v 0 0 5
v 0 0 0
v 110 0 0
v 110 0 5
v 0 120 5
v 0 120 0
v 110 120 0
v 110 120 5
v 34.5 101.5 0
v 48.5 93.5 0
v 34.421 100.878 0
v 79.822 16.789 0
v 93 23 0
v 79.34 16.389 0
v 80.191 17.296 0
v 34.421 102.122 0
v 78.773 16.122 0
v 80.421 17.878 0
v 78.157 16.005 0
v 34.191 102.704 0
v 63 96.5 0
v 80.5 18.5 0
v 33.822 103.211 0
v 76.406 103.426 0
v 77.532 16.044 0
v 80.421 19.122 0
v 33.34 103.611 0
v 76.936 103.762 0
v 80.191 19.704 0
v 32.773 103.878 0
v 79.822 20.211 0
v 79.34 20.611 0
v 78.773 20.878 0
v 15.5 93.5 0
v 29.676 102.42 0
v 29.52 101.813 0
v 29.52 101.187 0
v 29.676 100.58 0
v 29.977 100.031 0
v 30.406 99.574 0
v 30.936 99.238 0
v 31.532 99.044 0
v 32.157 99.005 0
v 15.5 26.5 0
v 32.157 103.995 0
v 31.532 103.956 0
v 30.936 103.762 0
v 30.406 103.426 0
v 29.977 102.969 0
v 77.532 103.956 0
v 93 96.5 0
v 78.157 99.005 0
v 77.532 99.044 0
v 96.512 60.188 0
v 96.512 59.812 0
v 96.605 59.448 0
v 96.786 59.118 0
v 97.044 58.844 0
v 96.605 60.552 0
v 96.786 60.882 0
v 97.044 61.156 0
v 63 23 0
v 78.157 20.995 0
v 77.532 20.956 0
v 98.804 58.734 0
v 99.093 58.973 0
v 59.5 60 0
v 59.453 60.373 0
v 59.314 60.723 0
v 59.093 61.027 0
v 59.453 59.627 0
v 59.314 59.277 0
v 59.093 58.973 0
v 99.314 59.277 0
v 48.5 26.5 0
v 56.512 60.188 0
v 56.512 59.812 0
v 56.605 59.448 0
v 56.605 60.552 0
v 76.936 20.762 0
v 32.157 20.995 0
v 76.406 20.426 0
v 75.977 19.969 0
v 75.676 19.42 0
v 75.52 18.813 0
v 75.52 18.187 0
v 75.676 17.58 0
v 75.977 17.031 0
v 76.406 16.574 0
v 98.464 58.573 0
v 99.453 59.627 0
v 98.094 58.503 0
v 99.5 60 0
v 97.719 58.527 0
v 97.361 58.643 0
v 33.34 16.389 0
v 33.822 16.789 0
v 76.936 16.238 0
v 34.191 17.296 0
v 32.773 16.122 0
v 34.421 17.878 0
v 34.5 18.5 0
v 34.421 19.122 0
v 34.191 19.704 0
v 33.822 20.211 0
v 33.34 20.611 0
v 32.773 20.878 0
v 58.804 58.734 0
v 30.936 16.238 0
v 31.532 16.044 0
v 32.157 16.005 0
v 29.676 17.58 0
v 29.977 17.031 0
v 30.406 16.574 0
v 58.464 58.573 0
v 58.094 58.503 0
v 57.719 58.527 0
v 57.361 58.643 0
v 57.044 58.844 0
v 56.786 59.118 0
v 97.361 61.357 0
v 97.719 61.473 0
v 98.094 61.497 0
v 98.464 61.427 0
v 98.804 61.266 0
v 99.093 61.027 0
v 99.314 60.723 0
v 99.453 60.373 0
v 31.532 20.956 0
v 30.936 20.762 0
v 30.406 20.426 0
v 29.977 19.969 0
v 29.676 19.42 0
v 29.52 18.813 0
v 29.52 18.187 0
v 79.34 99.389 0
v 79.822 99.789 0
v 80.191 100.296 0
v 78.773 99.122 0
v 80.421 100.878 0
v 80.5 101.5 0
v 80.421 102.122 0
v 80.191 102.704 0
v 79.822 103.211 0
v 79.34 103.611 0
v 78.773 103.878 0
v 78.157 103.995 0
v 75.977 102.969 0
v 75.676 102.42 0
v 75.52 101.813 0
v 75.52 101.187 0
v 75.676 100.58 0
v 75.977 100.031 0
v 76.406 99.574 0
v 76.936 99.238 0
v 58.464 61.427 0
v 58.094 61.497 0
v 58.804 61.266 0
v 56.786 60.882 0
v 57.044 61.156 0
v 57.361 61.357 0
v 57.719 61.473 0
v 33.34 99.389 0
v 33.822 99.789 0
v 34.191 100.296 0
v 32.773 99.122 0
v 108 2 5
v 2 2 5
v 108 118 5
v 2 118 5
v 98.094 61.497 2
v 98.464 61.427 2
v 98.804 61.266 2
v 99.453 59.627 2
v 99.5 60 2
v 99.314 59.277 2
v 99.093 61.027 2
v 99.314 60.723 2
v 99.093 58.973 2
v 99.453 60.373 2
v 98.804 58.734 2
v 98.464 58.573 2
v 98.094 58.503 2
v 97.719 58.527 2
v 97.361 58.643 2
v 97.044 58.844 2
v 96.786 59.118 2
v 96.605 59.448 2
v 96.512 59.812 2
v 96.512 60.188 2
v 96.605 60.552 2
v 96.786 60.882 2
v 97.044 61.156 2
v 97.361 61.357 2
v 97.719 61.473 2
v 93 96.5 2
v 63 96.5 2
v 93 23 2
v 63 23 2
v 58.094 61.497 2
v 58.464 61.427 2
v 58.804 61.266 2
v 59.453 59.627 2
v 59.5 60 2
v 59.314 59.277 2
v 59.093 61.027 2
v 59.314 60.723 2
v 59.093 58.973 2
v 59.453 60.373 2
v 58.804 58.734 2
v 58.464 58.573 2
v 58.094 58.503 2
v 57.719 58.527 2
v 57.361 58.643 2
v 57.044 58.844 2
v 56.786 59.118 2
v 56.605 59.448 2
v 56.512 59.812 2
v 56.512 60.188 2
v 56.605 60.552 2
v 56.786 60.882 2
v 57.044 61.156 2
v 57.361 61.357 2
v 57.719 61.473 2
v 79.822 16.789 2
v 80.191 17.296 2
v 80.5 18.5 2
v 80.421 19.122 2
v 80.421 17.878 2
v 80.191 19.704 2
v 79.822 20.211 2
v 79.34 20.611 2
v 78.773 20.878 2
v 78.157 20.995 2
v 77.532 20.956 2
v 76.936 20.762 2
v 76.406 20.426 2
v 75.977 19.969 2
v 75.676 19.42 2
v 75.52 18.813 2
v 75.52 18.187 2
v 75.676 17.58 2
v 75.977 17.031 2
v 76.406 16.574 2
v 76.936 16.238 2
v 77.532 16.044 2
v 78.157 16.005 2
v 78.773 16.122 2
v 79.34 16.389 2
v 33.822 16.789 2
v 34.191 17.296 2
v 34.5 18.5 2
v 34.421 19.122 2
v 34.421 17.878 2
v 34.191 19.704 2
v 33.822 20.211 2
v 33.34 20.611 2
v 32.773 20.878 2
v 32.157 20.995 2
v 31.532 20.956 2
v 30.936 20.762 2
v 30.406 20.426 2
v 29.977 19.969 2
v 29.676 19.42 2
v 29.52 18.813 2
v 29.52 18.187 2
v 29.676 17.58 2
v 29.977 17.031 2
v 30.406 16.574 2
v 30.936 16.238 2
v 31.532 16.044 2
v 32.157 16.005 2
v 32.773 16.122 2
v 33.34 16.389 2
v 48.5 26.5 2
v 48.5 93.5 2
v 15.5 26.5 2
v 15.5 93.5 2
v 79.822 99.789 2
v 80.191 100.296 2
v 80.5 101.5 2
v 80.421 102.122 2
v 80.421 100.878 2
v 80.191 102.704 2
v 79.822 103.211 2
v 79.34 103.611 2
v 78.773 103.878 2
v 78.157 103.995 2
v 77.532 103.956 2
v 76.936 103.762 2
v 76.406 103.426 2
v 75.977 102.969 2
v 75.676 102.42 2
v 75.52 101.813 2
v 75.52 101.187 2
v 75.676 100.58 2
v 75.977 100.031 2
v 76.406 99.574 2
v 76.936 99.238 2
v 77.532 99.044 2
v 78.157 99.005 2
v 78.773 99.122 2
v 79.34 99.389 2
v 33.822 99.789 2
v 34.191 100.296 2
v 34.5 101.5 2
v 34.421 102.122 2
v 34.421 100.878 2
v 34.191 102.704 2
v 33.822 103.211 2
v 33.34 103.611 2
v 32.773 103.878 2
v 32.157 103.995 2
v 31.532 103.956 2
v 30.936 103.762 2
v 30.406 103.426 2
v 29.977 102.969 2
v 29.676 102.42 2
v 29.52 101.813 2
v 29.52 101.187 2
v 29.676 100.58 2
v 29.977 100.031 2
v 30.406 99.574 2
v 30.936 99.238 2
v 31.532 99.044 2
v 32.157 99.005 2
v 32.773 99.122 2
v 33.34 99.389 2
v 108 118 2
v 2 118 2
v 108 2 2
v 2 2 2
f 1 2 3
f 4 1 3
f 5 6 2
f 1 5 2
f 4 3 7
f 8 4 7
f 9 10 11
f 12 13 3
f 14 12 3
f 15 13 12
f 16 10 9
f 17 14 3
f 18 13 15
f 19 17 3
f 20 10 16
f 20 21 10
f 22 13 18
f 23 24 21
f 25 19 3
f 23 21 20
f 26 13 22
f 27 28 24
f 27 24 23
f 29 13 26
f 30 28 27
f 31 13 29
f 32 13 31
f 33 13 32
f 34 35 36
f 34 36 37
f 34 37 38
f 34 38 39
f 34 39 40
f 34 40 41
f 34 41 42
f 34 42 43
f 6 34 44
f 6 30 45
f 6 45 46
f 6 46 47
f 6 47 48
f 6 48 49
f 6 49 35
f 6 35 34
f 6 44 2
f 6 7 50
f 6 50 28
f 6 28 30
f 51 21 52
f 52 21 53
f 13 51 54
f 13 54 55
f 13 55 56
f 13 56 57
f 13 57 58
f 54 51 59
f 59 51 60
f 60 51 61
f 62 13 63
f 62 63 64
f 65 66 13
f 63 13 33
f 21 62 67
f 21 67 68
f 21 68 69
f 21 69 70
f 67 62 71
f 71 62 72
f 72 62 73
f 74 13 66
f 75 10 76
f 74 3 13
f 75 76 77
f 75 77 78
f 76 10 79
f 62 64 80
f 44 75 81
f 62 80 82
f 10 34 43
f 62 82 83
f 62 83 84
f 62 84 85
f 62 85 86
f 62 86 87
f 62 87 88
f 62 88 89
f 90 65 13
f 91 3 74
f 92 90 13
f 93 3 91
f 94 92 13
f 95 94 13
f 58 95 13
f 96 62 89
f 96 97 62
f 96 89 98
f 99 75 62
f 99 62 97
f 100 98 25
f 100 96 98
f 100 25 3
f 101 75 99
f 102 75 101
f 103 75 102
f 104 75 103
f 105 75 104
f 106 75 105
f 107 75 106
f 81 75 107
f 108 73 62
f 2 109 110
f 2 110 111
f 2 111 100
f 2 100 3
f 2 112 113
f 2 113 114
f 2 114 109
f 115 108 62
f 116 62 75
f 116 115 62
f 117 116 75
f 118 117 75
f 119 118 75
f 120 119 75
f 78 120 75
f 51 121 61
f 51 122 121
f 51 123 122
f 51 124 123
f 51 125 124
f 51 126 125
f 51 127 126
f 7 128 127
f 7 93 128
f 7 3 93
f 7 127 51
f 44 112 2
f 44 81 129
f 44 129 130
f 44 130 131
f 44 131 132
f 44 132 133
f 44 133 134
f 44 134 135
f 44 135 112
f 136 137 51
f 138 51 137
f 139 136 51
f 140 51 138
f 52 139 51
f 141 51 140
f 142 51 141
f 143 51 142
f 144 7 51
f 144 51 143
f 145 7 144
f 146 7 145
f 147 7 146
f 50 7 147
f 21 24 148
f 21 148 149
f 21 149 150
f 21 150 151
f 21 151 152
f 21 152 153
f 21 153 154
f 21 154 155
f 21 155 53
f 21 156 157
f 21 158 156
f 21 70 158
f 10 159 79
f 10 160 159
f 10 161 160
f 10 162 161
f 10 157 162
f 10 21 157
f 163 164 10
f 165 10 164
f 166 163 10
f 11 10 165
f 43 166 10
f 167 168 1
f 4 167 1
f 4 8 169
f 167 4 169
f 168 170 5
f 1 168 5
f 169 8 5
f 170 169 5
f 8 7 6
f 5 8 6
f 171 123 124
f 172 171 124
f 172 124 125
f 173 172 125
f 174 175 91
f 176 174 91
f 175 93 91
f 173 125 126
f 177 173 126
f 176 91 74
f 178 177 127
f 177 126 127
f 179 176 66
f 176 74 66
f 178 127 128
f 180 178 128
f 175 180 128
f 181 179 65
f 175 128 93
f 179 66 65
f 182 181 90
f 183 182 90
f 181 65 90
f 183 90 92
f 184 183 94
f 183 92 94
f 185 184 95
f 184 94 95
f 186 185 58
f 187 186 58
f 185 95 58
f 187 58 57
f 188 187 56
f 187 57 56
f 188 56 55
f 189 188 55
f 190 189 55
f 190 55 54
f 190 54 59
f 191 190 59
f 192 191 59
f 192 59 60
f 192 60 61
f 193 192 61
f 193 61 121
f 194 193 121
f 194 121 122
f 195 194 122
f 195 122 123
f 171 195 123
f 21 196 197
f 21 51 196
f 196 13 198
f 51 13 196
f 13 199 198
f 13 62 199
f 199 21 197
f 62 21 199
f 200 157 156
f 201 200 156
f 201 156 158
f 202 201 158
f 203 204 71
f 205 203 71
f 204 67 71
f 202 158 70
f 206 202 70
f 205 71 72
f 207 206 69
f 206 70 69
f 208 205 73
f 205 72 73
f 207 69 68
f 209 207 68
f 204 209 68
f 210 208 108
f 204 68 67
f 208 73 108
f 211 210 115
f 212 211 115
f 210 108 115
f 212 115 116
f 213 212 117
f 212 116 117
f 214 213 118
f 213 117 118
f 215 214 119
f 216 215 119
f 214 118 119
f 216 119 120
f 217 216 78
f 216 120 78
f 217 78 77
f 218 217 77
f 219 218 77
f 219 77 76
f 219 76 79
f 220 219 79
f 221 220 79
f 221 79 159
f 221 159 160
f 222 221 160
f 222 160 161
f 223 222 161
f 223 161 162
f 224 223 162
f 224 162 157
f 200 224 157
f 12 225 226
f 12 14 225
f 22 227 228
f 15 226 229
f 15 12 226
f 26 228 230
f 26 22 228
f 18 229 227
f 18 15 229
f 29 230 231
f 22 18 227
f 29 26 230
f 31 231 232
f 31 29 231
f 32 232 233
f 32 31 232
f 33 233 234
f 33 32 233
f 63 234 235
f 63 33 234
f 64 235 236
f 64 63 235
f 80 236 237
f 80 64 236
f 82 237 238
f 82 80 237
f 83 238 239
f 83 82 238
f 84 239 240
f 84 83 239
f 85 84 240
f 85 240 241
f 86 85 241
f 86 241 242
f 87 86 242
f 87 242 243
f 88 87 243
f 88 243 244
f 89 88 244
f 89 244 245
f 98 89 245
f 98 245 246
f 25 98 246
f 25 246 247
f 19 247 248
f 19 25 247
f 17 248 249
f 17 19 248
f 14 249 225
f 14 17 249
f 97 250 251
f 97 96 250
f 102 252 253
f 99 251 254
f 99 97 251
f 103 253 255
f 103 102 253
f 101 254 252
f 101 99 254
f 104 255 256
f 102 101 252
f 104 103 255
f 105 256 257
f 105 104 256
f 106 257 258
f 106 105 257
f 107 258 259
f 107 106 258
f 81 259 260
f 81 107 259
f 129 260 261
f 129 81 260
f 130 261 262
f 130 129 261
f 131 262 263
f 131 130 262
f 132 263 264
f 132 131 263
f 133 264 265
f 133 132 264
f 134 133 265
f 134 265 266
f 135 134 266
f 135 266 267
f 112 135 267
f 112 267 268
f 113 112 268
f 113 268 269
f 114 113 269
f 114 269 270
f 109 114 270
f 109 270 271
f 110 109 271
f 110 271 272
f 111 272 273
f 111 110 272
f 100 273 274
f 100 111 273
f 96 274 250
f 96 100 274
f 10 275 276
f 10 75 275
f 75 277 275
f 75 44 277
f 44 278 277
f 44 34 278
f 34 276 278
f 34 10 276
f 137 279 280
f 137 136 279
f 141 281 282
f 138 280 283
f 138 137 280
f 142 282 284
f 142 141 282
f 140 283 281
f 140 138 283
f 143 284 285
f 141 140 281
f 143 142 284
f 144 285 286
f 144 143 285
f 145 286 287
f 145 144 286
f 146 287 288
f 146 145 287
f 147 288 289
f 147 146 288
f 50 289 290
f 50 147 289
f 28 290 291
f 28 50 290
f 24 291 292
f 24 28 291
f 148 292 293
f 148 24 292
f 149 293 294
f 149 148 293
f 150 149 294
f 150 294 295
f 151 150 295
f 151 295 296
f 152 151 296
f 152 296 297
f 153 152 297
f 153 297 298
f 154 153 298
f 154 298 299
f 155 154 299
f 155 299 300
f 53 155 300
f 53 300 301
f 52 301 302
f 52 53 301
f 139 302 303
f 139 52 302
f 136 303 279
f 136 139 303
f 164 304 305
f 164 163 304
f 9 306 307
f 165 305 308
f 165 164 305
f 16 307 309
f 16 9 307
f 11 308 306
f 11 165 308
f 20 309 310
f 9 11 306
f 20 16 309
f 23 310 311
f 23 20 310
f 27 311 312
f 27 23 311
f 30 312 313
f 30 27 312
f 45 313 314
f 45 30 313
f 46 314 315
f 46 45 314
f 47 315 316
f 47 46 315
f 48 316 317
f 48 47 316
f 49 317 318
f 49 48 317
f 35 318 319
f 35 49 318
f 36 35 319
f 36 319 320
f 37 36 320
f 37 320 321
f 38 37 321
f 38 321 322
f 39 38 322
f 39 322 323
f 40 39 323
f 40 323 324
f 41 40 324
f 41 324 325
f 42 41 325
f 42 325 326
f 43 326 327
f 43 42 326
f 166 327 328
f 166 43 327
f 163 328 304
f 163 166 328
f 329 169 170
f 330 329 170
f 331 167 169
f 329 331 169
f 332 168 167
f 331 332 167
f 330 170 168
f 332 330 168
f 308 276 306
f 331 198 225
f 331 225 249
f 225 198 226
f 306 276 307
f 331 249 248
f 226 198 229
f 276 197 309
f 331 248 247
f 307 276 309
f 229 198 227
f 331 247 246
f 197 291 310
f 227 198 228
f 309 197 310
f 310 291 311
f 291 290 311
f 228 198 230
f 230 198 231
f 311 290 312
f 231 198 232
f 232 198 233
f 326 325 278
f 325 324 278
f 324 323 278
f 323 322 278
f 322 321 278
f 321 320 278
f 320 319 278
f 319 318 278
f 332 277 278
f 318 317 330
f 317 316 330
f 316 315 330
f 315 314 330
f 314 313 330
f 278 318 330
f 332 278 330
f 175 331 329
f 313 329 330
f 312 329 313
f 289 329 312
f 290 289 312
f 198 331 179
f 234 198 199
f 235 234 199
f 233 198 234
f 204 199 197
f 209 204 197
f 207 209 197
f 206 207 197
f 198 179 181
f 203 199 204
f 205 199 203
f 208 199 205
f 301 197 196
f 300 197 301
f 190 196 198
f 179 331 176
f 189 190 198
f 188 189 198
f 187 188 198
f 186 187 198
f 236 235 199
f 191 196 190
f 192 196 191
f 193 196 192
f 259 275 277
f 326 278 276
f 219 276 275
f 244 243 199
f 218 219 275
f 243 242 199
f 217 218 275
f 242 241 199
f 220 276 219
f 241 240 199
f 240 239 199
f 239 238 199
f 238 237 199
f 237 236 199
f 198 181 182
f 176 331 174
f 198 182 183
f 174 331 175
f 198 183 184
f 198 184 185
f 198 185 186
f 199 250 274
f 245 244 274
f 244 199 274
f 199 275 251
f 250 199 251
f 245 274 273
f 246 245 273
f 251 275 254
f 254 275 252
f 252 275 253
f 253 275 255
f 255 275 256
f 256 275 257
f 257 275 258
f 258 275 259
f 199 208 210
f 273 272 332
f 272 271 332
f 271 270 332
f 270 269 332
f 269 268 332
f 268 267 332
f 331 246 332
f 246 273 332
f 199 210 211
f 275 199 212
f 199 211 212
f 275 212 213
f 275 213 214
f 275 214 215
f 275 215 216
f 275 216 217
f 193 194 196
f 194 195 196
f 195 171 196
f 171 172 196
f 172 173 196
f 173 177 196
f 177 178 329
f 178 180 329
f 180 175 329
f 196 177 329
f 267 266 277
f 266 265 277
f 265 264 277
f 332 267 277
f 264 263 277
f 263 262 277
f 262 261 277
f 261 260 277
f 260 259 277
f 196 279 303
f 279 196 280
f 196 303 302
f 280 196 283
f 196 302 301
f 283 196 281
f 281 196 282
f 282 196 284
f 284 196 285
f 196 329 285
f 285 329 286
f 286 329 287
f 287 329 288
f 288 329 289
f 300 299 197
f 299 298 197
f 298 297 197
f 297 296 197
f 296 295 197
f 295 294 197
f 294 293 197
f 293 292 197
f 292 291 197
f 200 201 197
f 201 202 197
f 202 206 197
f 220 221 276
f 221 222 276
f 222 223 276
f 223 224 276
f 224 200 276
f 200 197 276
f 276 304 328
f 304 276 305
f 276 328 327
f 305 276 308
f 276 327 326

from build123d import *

# Parameters (mm, degrees)
SKETCH_W        = 110
SKETCH_H        = 120
SKETCH_R        = 2.5
PAD_DEPTH       = 5
SKETCH001_W     = 106
SKETCH001_H     = 116
POCKET_DEPTH    = 3
SKETCH002_R     = 1.5
SKETCH002_W     = 33
SKETCH002_H     = 67
SKETCH002_W_2   = 30
SKETCH002_H_2   = 73.5
POCKET001_DEPTH = 5.001


with BuildPart() as part:
    # Sketch → Pad (new body)
    with BuildSketch(Plane.XY):
        with Locations((55, 60)):
            Rectangle(SKETCH_W, SKETCH_H)
        with Locations((32, 101.5)):
            Circle(SKETCH_R, mode=Mode.SUBTRACT)
        with Locations((78, 101.5)):
            Circle(SKETCH_R, mode=Mode.SUBTRACT)
        with Locations((32, 18.5)):
            Circle(SKETCH_R, mode=Mode.SUBTRACT)
        with Locations((78, 18.5)):
            Circle(SKETCH_R, mode=Mode.SUBTRACT)
    extrude(amount=PAD_DEPTH)

    # Sketch001 → Pocket (cut)
    with BuildSketch(Plane.XY.offset(5)):
        with Locations((55, 60)):
            Rectangle(SKETCH001_W, SKETCH001_H)
    extrude(amount=-POCKET_DEPTH, mode=Mode.SUBTRACT)

    # Sketch002 → Pocket001 (cut, through all)
    with BuildSketch(Plane(origin=(0, 0, 0), x_dir=(1, 0, 0), z_dir=(0, 0, -1))):
        with Locations((58, -60)):
            Circle(SKETCH002_R)
        with Locations((98, -60)):
            Circle(SKETCH002_R)
        with Locations((32, -60)):
            Rectangle(SKETCH002_W, SKETCH002_H)
        with Locations((78, -59.75)):
            Rectangle(SKETCH002_W_2, SKETCH002_H_2)
    extrude(amount=-POCKET001_DEPTH, mode=Mode.SUBTRACT)


solid = part.part
